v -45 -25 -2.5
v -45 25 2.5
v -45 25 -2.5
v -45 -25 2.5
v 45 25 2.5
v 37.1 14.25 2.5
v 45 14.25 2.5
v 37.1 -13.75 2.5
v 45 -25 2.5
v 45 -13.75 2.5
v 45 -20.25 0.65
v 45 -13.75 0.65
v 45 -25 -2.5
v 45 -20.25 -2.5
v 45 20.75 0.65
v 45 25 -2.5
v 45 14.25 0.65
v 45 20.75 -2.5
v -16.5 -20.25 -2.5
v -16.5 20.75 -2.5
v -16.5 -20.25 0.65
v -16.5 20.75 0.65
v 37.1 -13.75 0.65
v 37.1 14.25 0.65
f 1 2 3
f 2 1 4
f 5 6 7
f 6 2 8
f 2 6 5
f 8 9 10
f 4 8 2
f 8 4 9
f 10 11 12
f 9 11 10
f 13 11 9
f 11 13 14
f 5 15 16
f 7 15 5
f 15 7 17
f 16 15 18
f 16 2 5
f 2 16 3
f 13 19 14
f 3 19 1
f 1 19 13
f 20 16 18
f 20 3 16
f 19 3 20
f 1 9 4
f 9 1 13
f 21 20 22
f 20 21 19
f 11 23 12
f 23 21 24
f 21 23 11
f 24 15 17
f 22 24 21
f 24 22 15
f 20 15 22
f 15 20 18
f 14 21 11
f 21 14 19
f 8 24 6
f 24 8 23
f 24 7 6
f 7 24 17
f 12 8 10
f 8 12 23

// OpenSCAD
difference() {
//Grundkoerper
cube(size = [90,50,5], center = true);

//Platine
color("red") 
translate(v = [14.5, 0.25, -1.1]) {
cube(size = [62,41,3.5], center = true);
    }
    
    translate(v = [41.1, 0.25, 0.3]) {
cube(size = [8,28,5], center = true);
}

}

/*
color("black") 
translate(v = [14.5, 0, -0.9]) {
cube(size = [61,40,3], center = true);
}  
*/
